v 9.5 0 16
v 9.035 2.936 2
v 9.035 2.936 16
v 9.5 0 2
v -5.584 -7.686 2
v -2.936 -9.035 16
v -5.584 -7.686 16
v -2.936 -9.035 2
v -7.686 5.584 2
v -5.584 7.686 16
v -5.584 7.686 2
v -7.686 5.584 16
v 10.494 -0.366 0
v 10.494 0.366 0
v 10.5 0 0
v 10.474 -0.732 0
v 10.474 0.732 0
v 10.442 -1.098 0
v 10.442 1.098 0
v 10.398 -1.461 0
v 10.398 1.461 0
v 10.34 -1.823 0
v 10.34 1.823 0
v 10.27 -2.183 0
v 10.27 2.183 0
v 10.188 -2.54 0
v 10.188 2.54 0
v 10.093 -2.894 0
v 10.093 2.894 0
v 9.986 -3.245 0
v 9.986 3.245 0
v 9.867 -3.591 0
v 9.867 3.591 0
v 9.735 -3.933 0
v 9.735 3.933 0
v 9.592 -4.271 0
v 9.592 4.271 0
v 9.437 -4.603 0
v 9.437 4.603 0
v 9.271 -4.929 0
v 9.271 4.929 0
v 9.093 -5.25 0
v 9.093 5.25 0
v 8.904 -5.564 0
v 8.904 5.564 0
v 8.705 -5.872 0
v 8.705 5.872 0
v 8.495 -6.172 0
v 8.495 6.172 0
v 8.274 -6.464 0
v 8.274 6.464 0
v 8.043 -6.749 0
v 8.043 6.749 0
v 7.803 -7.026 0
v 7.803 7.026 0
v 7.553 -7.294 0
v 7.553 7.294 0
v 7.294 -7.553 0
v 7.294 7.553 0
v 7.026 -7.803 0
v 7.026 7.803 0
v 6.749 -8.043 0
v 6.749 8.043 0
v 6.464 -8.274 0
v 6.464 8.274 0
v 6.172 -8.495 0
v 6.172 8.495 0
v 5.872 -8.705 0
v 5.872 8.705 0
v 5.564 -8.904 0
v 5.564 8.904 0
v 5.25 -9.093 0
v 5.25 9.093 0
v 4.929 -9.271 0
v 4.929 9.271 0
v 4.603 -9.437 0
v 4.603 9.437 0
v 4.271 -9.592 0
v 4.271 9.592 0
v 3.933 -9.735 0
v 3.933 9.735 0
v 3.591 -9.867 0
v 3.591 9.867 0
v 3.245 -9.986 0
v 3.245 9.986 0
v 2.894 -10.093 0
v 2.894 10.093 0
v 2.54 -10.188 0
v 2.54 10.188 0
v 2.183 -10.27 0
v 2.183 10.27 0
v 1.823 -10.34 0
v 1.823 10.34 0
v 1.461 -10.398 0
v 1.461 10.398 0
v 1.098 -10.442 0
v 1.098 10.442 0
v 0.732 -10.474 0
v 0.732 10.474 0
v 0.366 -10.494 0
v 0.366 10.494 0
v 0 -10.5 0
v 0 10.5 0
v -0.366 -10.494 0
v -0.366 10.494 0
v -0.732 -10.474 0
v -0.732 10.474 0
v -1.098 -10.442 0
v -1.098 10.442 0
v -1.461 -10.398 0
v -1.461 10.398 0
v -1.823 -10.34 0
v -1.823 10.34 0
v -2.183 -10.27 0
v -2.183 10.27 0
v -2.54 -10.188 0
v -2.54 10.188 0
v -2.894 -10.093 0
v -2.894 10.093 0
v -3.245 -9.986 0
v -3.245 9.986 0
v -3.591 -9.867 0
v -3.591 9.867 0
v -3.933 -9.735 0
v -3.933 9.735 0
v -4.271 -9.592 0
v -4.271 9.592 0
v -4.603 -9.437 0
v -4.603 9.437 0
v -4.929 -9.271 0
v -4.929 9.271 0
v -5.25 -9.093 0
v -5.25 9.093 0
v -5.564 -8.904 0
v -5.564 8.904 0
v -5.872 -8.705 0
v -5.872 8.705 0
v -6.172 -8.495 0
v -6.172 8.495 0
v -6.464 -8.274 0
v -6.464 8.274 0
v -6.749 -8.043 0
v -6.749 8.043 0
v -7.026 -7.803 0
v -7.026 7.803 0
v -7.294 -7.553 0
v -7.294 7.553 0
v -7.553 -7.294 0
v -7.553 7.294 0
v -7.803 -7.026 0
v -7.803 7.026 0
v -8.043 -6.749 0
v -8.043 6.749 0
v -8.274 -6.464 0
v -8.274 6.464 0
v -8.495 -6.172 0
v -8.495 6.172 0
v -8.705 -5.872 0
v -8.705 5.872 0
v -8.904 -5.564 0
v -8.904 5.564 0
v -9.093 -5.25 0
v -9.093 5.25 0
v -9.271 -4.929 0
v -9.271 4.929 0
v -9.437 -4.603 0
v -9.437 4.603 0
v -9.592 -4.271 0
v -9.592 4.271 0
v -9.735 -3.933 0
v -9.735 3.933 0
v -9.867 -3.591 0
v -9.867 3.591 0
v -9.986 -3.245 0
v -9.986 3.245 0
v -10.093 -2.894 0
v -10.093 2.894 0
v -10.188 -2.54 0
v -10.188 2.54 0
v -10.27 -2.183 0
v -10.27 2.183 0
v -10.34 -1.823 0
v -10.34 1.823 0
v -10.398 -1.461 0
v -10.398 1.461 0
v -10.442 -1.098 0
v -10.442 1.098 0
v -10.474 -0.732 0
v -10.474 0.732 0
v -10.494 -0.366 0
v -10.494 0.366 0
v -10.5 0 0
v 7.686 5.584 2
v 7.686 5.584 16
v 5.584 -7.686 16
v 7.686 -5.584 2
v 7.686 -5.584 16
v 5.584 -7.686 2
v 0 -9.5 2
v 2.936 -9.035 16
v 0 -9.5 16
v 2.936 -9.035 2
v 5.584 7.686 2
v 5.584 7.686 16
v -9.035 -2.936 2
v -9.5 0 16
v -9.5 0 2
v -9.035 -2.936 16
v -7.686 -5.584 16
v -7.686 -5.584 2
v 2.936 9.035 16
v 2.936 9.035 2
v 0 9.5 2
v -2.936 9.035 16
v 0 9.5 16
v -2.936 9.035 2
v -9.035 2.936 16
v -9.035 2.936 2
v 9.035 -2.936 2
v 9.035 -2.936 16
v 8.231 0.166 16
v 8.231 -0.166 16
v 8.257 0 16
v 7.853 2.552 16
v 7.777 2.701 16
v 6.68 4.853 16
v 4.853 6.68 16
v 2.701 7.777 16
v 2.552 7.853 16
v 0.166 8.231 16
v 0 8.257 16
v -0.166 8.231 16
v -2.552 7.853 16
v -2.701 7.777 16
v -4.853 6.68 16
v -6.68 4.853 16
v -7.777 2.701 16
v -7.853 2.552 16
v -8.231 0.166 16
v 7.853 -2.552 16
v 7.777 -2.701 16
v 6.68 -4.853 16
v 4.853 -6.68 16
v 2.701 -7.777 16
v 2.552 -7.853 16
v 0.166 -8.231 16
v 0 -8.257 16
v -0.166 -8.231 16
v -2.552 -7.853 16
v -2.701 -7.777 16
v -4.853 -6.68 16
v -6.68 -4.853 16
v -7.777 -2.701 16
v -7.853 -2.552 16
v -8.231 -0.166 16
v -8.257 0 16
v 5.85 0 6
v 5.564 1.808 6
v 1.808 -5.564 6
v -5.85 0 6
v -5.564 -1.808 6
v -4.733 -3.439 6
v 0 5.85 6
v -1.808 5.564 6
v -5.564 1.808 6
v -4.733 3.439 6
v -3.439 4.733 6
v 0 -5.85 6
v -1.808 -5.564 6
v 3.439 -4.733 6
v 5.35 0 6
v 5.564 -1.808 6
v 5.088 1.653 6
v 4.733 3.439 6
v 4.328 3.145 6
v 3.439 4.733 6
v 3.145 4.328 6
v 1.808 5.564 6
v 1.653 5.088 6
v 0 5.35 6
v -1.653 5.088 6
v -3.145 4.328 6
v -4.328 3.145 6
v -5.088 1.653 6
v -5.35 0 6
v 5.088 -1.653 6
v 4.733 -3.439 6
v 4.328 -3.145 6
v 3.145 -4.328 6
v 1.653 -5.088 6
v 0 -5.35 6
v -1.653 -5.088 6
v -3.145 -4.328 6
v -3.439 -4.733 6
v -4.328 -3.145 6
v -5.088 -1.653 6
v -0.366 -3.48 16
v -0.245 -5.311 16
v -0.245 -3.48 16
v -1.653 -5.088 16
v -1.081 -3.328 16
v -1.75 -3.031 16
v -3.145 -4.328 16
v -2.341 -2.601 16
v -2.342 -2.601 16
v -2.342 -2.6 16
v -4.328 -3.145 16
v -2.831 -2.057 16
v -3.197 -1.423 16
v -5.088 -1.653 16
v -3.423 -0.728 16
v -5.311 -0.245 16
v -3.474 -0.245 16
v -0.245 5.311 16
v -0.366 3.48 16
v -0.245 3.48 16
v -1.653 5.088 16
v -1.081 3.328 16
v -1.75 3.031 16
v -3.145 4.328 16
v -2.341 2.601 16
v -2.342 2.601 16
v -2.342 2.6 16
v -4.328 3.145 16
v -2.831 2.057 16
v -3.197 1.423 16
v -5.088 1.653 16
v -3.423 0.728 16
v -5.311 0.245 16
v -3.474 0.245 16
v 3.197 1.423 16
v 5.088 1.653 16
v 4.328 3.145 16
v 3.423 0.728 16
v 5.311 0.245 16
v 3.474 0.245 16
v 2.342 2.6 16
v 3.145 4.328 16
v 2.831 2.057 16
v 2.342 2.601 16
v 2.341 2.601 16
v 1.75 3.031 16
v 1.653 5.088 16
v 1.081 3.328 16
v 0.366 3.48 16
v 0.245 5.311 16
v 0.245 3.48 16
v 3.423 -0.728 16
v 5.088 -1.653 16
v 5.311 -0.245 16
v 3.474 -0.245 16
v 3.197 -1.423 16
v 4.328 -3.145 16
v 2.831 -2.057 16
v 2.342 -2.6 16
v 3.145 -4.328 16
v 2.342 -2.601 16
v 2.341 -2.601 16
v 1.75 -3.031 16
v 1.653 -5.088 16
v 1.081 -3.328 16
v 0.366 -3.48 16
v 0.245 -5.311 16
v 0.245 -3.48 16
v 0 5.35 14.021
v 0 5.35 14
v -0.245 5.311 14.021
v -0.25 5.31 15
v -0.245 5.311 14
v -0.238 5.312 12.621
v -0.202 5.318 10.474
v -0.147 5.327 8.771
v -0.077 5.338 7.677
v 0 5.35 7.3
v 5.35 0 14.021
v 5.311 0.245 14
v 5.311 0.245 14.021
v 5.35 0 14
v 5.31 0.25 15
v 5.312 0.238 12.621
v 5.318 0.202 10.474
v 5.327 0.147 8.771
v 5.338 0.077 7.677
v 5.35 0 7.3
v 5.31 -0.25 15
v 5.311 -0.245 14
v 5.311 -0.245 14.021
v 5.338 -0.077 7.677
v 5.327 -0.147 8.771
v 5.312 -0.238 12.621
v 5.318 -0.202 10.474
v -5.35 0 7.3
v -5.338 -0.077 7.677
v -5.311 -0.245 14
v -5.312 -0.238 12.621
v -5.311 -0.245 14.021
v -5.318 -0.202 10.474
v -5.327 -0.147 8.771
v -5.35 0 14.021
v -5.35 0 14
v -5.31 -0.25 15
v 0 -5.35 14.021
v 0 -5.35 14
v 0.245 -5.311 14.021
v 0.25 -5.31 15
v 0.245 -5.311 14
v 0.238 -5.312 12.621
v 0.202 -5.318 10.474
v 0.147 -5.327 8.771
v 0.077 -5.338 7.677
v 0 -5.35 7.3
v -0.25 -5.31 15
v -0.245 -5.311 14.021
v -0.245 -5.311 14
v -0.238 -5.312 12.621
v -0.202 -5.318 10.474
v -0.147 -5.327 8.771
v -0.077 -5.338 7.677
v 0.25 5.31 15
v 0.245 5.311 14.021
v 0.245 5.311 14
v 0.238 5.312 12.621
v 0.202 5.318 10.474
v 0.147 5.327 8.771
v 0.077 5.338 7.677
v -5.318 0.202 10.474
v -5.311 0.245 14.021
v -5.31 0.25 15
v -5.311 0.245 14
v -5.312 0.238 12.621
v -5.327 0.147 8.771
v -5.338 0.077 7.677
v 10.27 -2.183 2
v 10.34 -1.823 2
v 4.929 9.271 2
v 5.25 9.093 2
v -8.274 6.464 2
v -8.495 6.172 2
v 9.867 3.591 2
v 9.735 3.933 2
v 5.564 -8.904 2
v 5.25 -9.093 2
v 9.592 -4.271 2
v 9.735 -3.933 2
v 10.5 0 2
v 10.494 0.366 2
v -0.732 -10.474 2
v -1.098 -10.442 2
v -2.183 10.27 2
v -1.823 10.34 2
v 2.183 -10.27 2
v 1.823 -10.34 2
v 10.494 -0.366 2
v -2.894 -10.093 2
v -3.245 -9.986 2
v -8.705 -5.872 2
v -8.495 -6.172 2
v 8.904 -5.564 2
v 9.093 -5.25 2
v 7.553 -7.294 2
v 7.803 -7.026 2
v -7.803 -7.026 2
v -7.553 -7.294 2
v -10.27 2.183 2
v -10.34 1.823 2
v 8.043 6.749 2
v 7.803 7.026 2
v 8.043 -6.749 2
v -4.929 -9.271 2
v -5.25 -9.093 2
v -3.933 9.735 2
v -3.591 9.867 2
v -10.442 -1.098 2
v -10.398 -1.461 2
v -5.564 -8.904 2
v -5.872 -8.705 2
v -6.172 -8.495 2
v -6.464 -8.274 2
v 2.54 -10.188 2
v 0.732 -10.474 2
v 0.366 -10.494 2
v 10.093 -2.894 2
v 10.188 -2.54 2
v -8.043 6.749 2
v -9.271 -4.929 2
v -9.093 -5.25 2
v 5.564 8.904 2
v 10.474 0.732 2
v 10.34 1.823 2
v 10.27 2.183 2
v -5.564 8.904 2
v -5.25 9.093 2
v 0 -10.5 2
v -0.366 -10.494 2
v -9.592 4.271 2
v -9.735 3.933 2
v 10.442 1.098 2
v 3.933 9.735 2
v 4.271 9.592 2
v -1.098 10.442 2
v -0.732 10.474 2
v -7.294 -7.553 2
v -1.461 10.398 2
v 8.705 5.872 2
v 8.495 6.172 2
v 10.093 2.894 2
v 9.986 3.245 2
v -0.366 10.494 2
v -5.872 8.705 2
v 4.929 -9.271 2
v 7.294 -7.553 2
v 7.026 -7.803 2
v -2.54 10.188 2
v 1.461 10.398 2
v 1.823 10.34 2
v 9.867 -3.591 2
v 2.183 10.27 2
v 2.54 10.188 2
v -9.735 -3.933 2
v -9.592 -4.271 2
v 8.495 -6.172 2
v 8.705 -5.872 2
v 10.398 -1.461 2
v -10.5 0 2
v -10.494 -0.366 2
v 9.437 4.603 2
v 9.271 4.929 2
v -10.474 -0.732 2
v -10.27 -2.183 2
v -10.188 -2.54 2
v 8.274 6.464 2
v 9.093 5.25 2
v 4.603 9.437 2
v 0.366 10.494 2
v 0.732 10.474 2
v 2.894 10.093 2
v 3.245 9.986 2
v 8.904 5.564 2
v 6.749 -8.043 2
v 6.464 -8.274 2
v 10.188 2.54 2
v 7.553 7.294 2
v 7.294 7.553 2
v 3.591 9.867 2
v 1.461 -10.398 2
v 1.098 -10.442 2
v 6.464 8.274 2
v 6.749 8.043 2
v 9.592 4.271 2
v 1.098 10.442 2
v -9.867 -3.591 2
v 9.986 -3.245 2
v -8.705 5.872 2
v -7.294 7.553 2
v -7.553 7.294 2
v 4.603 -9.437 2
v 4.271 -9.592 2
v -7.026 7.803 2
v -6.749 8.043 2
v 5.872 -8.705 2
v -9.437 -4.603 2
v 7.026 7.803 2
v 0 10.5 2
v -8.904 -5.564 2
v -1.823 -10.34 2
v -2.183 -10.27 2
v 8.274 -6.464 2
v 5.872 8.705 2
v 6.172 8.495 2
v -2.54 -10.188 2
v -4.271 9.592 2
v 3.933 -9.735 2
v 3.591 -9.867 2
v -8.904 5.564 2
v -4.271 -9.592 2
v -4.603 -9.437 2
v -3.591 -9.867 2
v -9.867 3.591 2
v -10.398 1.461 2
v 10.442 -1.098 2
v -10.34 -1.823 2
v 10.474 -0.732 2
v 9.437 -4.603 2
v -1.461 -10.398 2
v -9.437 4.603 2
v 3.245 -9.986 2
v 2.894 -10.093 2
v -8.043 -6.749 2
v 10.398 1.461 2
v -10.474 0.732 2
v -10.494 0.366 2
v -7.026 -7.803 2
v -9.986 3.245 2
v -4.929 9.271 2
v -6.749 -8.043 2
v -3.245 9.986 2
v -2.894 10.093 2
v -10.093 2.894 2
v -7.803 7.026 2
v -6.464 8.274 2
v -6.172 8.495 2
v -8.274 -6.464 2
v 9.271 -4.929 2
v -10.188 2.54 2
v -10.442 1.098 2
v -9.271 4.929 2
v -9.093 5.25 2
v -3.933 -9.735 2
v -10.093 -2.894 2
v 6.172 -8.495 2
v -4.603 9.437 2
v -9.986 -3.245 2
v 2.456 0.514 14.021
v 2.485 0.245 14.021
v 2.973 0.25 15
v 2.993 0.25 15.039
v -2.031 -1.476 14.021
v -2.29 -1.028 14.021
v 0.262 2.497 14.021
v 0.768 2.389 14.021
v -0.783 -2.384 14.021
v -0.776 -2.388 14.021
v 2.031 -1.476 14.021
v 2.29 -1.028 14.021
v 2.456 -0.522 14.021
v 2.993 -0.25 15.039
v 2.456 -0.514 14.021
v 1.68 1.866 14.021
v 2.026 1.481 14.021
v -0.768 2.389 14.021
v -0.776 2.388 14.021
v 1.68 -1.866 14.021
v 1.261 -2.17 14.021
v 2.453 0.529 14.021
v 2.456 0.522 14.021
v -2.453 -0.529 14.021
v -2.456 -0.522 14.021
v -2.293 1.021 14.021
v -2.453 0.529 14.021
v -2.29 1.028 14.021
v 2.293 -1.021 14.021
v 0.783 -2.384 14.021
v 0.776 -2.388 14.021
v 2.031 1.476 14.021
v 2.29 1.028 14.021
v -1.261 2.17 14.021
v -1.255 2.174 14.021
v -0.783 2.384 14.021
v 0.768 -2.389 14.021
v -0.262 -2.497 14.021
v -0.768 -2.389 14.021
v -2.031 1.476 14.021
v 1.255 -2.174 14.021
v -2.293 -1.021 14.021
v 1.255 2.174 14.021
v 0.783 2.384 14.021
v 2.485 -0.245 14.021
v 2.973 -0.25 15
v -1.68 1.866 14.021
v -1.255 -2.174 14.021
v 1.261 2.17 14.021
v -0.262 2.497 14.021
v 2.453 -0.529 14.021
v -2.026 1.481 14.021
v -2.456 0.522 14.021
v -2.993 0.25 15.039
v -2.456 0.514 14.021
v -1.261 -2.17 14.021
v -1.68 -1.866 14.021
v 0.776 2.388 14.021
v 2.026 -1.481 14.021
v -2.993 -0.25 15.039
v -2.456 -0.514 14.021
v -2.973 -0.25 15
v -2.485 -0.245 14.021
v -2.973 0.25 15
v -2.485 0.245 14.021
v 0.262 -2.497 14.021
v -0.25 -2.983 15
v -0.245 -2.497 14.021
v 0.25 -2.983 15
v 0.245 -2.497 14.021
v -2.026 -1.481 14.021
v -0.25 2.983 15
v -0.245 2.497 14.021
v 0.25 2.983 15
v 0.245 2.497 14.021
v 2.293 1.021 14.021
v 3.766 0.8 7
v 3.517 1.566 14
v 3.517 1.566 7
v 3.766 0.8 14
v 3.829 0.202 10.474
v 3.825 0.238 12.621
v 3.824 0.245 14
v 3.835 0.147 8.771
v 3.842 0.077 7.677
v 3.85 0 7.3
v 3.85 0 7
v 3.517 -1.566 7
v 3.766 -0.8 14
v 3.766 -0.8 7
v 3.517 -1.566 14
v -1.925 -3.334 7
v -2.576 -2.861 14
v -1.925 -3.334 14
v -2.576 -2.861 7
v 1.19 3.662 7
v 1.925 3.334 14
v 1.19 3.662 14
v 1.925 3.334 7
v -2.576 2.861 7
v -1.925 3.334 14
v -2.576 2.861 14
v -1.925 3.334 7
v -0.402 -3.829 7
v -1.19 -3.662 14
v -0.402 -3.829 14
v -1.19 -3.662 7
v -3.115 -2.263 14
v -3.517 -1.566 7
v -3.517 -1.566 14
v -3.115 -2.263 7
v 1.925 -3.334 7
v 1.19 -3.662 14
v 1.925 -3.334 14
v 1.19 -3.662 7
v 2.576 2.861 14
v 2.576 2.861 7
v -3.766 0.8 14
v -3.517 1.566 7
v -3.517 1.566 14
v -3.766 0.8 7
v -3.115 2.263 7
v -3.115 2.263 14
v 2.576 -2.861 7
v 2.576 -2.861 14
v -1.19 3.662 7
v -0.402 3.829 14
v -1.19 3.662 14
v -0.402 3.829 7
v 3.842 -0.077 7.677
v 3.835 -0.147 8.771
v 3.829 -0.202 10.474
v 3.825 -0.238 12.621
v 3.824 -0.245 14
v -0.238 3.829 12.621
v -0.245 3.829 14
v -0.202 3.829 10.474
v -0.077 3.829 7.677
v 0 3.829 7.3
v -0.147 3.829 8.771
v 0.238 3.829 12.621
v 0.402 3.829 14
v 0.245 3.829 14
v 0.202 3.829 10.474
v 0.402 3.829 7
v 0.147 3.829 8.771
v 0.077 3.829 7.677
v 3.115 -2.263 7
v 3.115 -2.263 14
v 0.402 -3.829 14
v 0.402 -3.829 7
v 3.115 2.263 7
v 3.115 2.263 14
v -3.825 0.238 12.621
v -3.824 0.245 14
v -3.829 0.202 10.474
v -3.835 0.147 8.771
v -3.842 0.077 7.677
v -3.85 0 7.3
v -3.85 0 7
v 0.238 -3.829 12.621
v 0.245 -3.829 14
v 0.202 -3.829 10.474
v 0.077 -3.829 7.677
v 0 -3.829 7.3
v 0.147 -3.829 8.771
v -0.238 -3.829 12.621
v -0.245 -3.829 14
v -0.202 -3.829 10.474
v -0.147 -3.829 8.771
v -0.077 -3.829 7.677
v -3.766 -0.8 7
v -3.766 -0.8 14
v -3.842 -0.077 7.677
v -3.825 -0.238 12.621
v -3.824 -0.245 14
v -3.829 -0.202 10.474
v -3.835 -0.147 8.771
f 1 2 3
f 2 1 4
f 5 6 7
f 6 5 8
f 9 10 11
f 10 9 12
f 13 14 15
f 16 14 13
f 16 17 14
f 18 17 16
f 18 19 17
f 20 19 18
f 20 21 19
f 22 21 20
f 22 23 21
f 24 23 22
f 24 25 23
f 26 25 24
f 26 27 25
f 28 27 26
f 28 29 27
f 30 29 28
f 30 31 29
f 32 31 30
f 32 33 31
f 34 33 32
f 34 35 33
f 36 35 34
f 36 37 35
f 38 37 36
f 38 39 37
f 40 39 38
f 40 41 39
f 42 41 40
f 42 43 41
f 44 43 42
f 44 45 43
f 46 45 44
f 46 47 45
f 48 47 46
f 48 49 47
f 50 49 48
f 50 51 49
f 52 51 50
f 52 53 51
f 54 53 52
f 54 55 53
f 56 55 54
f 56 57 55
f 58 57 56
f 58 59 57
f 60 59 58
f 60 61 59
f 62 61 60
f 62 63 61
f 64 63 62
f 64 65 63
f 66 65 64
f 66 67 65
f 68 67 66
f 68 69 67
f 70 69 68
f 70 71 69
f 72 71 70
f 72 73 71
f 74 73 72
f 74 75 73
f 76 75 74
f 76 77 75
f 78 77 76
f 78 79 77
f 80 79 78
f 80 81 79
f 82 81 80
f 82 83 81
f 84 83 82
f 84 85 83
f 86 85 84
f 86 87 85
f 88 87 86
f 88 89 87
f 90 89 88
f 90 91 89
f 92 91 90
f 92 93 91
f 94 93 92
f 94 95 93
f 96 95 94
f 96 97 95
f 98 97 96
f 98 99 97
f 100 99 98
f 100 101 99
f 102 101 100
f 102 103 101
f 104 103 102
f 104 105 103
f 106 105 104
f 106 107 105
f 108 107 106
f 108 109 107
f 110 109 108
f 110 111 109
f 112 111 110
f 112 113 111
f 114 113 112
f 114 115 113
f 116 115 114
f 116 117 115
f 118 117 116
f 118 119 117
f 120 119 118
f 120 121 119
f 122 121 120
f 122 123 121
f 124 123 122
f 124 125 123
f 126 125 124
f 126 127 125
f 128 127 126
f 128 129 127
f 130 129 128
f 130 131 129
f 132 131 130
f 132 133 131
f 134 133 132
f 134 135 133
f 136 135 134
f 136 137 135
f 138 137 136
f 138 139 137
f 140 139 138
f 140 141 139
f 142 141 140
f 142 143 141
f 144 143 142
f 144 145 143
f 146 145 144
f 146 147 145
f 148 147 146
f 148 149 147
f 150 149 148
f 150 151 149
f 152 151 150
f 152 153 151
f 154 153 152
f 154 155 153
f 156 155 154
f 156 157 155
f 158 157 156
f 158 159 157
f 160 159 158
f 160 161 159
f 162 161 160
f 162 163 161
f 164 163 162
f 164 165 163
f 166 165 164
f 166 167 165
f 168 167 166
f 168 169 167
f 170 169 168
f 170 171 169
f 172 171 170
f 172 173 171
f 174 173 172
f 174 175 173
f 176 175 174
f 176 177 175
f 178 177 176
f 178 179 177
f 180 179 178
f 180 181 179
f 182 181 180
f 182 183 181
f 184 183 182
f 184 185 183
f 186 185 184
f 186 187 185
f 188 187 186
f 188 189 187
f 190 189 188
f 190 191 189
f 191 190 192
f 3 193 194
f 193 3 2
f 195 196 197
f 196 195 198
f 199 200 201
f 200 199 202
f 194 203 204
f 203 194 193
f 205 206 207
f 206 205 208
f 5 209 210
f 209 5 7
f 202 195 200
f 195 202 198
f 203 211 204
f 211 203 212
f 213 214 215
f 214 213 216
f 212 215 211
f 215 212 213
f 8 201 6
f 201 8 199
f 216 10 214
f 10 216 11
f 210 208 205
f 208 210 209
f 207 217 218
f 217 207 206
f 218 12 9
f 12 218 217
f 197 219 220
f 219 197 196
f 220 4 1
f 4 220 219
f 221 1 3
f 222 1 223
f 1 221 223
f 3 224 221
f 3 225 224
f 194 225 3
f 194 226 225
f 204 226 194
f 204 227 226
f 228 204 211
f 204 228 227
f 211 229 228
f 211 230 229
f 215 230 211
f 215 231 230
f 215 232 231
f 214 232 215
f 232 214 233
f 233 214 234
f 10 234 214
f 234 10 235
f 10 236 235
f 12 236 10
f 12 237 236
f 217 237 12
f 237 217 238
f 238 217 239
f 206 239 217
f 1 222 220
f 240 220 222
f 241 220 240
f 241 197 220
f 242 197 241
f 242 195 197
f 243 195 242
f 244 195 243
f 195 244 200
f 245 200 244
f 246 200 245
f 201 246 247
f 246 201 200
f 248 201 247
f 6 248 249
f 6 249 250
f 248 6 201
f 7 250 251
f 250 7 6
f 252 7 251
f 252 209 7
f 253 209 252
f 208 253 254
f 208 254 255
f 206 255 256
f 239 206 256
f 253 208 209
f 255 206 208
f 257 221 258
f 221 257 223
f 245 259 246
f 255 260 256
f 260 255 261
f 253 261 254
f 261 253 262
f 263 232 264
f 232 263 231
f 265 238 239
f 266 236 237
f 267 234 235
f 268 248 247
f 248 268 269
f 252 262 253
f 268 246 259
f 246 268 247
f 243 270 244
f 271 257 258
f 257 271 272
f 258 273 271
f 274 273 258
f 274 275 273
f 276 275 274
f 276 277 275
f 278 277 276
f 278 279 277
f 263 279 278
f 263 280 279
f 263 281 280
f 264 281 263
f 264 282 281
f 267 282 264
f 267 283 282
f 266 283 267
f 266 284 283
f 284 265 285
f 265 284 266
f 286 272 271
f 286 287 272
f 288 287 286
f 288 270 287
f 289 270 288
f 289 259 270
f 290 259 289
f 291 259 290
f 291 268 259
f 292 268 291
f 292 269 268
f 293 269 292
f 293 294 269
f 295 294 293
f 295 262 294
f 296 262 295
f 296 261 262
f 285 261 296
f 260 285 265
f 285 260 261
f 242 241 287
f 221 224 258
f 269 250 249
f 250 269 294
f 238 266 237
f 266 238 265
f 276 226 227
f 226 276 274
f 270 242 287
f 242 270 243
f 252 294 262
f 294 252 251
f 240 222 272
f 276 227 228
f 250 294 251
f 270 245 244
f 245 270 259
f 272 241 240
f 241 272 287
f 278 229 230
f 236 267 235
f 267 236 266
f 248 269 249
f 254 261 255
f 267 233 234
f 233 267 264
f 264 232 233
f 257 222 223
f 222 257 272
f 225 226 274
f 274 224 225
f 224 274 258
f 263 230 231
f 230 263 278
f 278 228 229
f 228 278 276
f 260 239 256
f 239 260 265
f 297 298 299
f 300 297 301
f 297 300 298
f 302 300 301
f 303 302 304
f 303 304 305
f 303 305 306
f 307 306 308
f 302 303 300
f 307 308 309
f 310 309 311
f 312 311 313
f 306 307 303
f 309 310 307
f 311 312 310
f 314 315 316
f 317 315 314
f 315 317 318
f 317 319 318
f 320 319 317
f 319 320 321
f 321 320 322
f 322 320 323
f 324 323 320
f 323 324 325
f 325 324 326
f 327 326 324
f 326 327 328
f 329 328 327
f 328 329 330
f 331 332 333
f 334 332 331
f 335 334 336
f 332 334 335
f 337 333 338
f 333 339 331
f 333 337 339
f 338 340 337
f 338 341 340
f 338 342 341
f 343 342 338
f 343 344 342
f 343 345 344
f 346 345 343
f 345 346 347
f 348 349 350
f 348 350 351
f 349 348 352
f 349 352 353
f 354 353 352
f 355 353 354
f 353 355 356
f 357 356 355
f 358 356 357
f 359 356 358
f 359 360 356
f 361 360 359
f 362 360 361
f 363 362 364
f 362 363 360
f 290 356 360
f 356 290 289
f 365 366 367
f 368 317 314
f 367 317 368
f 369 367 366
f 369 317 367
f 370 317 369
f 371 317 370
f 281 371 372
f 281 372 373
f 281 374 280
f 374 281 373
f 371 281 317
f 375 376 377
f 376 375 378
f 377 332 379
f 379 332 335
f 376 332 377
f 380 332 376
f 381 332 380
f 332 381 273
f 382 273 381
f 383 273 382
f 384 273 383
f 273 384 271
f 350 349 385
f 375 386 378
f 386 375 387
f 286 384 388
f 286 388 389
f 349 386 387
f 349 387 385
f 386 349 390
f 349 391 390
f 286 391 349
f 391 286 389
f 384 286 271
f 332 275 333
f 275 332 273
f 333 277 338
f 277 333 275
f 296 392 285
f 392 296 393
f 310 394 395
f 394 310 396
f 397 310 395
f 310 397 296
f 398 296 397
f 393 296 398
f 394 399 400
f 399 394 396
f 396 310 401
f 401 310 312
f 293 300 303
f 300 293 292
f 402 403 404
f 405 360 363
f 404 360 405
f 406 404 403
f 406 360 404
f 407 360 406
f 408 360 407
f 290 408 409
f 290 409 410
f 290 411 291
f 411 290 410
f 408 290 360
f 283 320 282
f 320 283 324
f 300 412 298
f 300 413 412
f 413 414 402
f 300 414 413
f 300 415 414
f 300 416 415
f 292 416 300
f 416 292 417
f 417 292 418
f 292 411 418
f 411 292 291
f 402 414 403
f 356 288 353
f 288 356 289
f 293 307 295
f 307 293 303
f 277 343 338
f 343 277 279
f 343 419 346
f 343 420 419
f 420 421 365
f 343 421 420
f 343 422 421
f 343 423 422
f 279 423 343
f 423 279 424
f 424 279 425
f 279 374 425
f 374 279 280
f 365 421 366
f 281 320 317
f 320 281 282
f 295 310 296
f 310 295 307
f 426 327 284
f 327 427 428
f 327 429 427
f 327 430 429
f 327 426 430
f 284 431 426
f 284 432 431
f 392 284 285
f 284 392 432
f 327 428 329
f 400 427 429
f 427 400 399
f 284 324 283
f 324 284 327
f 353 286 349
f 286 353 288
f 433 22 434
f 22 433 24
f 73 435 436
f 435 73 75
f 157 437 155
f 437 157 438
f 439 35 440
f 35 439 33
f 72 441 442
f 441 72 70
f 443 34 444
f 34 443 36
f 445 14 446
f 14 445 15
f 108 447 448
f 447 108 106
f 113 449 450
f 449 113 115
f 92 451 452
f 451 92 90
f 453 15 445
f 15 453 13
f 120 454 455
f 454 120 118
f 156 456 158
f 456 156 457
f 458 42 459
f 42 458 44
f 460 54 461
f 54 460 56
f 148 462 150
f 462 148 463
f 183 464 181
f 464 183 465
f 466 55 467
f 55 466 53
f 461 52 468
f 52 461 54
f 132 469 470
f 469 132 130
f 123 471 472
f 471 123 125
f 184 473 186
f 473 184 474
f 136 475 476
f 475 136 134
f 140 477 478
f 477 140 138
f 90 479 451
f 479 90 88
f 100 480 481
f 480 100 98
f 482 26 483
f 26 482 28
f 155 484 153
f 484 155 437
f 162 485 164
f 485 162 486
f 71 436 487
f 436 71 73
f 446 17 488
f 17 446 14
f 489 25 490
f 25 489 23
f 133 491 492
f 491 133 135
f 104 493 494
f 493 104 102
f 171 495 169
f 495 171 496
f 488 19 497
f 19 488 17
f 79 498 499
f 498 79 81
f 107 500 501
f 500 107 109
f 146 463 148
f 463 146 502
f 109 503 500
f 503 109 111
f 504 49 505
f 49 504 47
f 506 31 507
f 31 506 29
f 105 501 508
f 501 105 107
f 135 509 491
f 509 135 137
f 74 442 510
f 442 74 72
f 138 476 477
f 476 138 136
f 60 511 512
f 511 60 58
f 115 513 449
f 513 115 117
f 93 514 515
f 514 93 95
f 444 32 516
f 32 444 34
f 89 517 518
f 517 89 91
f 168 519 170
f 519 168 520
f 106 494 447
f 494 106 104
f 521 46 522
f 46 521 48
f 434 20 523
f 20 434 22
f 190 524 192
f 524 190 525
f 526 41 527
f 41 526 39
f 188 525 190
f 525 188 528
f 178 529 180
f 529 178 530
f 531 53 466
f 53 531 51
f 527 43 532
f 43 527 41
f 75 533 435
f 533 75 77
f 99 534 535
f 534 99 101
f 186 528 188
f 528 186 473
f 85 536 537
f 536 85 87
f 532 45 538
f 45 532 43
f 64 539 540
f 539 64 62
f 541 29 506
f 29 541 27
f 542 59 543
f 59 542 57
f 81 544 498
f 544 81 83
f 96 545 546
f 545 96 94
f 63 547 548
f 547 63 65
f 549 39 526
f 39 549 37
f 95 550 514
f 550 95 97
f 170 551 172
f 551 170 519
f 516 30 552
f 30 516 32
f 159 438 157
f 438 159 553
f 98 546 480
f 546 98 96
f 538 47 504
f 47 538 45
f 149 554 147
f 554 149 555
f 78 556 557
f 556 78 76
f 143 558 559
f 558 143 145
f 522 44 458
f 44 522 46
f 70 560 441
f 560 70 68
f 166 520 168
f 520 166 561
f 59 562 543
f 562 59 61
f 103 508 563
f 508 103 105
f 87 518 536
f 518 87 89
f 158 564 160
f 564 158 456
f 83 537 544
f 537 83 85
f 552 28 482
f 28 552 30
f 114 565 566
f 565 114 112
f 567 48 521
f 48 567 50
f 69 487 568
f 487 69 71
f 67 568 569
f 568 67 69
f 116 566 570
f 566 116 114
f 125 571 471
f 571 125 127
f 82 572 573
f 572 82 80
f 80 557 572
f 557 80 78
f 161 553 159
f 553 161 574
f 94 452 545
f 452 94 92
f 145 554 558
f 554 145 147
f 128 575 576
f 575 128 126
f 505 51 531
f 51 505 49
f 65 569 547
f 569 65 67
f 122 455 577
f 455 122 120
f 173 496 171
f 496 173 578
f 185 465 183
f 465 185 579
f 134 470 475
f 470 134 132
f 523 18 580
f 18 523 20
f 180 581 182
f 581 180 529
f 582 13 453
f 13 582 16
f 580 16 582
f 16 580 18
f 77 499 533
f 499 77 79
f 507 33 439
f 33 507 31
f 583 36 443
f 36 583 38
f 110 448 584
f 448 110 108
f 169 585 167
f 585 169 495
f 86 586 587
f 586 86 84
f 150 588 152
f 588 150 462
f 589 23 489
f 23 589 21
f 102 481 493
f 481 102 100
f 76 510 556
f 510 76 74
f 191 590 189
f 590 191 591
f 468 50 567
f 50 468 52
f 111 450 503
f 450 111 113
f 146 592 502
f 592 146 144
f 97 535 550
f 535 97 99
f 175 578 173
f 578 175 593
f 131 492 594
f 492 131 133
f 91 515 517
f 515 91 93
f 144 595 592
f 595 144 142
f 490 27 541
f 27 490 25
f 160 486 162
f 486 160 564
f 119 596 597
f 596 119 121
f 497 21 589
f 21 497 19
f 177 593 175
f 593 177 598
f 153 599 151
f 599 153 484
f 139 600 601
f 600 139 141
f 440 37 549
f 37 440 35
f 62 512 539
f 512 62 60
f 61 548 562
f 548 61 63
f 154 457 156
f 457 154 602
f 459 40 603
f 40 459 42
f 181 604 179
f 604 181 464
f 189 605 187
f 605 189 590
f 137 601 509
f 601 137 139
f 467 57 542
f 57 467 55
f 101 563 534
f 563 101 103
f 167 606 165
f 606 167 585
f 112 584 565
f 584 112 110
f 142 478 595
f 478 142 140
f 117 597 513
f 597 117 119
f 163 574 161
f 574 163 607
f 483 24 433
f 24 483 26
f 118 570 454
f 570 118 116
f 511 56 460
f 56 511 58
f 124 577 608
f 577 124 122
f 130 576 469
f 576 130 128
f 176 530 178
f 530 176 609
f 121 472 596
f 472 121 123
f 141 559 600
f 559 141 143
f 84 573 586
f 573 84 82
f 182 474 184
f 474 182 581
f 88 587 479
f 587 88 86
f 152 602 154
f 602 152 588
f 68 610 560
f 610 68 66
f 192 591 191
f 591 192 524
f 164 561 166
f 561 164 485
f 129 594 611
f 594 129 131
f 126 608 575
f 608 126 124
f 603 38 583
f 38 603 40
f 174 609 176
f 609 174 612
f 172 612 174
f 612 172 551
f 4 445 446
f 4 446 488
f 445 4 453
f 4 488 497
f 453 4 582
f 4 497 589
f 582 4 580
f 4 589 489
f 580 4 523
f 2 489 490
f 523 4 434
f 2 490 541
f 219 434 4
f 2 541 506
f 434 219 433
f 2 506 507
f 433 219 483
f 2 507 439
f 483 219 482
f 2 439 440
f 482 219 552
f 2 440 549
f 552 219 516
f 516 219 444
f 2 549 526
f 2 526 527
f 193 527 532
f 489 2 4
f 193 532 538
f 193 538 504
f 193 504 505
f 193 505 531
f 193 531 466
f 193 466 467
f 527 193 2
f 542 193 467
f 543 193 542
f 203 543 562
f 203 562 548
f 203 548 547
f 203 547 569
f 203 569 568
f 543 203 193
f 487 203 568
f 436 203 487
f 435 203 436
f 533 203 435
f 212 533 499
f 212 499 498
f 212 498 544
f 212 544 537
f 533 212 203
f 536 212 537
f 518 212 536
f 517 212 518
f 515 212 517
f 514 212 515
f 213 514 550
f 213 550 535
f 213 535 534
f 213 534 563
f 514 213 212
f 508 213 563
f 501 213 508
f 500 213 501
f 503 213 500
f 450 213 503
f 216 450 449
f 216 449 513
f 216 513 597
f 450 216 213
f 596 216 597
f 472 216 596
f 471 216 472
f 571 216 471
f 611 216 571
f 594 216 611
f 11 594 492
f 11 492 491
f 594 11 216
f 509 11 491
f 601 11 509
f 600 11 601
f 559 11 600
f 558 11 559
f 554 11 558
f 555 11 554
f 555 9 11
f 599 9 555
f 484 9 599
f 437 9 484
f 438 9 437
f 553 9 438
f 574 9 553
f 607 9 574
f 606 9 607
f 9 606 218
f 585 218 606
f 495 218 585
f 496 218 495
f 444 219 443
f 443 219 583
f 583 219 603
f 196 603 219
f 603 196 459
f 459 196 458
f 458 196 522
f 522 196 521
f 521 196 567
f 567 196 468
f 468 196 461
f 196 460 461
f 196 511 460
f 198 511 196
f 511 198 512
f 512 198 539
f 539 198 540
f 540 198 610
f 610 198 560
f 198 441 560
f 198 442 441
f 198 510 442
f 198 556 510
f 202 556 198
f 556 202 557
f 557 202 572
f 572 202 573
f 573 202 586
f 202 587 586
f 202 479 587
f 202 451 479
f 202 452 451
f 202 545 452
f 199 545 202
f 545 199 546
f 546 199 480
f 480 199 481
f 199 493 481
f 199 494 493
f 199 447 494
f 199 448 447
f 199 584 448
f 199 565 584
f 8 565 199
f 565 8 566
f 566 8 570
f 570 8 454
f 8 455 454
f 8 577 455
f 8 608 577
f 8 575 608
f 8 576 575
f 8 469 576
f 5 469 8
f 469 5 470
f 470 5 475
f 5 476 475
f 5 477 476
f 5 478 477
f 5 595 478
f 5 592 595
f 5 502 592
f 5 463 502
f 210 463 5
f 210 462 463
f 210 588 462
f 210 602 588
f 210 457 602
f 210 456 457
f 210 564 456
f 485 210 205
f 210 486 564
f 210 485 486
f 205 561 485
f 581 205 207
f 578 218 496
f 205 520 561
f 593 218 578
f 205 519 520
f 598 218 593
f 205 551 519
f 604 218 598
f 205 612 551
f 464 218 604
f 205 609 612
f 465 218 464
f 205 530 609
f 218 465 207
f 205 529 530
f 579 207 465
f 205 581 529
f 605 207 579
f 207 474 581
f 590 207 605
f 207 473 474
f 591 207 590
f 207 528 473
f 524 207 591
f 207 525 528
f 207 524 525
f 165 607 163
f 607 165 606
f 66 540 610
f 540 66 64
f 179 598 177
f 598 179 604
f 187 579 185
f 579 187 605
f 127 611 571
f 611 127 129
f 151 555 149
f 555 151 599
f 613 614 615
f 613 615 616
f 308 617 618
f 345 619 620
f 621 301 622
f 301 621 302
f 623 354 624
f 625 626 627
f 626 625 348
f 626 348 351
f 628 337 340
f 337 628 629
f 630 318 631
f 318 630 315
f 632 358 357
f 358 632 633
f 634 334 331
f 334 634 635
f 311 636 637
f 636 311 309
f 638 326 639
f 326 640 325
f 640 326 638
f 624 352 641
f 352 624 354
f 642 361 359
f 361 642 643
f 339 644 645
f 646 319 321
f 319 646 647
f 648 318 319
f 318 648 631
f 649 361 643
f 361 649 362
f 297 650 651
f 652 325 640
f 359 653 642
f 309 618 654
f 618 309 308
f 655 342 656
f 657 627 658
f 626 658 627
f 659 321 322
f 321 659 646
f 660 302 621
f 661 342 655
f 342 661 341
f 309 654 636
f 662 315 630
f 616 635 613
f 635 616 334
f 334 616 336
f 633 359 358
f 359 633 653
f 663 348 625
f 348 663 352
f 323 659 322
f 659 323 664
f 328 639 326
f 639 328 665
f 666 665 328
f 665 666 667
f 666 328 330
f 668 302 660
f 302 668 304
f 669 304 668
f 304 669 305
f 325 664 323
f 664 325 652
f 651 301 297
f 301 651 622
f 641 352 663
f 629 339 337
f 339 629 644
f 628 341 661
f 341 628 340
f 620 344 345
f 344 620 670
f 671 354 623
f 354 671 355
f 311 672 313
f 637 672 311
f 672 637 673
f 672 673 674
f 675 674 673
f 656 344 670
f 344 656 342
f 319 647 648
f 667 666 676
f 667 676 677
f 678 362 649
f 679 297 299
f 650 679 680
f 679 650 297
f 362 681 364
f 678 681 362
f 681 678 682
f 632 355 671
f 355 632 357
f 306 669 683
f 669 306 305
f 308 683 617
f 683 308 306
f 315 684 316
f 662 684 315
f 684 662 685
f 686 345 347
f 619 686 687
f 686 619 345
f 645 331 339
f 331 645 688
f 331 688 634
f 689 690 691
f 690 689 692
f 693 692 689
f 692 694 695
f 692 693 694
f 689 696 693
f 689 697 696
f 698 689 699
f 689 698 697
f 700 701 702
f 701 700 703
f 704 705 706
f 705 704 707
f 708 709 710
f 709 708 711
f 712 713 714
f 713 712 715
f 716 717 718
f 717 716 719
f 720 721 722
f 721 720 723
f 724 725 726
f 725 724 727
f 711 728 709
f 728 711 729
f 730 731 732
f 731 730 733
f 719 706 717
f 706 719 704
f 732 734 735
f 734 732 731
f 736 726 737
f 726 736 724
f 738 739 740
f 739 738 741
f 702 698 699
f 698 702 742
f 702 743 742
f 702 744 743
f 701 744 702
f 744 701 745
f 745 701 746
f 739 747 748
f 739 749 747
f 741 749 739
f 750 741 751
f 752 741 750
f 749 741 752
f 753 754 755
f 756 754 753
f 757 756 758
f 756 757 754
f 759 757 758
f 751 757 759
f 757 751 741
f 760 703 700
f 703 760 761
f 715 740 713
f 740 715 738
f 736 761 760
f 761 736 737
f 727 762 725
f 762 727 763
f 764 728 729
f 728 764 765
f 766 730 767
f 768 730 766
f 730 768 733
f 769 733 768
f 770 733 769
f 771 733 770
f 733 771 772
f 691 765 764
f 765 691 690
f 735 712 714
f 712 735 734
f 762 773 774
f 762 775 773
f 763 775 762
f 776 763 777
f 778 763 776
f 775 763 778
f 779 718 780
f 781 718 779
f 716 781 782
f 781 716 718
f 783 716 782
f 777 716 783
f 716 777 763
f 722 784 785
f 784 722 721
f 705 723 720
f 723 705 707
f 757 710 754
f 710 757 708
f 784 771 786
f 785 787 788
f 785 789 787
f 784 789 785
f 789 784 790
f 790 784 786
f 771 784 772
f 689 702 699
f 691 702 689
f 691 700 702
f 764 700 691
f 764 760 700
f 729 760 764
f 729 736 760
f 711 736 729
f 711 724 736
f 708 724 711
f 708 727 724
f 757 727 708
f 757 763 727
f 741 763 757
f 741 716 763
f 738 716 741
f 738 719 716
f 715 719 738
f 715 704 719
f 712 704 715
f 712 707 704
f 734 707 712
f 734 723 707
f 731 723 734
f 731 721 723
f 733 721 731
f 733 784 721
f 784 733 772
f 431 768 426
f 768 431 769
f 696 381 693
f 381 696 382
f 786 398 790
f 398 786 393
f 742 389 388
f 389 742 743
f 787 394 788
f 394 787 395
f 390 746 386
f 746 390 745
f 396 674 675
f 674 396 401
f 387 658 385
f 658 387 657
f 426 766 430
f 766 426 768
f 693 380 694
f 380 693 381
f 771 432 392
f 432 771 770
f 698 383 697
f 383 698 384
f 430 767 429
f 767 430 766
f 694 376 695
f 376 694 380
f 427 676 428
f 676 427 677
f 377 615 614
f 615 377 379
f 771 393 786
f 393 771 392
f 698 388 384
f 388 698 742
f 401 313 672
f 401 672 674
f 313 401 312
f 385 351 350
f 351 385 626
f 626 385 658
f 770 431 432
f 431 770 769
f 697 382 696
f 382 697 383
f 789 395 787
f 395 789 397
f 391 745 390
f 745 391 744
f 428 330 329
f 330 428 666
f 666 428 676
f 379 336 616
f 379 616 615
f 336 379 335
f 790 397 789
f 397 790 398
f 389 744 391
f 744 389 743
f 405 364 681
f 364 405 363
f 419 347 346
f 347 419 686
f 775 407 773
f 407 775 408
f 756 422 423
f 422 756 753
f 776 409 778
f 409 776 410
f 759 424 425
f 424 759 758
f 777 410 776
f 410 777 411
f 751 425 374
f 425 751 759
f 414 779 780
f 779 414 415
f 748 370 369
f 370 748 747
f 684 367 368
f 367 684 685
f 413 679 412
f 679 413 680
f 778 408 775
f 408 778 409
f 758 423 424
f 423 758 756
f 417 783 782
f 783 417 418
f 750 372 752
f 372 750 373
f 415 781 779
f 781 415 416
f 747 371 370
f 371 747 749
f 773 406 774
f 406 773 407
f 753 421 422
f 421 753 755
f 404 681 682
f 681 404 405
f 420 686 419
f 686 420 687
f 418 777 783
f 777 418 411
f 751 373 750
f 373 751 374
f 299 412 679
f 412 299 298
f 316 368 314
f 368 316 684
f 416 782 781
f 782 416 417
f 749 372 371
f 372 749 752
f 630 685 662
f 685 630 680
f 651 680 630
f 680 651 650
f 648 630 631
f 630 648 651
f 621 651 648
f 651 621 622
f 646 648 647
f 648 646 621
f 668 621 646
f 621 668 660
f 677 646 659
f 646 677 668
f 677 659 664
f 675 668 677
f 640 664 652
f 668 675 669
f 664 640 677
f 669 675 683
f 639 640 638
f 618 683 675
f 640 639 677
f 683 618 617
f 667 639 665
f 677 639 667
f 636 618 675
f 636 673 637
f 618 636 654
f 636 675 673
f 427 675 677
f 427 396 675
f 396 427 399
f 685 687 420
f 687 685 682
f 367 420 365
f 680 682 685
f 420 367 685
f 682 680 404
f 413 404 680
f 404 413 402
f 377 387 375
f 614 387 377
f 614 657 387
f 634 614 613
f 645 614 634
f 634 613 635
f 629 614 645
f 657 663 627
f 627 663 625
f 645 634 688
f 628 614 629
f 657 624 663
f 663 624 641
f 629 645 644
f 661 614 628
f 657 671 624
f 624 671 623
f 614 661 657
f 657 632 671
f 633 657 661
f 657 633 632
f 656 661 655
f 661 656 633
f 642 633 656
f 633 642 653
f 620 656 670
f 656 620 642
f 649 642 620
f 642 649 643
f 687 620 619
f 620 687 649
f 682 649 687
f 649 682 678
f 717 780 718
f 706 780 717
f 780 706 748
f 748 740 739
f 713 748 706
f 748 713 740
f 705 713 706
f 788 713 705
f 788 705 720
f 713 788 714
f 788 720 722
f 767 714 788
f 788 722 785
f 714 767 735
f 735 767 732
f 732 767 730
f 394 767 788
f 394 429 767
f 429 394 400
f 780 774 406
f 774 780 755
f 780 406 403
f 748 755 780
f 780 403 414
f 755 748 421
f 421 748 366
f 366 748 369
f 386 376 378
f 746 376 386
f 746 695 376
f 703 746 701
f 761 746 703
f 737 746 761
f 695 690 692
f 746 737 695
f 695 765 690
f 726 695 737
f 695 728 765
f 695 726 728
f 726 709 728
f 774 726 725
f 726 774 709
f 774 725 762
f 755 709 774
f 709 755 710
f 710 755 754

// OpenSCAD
/*
A replacement knob for a dog box which uses a 3/4" conduit sleeve to avoid dogs chewing it to bits.
Cut away the sacrificial bridge after printing.
Author: Nathaniel J Stenzel
Designed on 2/19/2020
*/
$fn=20; //lines in circle
nut_diameter = 7.7; //7.75mm last. almost tight enough
nut_length = 7;
ring_length = 16;
//conduit is 3/4 inch aka 19.05
conduit_diameter=19;
cut_away=false;

difference(){
    union(){
        cylinder(d=nut_diameter+3,h=ring_length);
        cylinder(d=conduit_diameter+2,h=2,$fn=180);
        difference(){
            cylinder(d=conduit_diameter,h=16);
            translate([0,0,ring_length-nut_length-3])cylinder(d1=nut_diameter+4,d2=conduit_diameter-2,h=ring_length-nut_length+2.01);
        }
    }
    translate([0,0,ring_length-2])cylinder(d=5,h=2.001,$fn=30);//a hole for the wire that the nut is on
    translate([0,0,ring_length-2])cylinder(d1=5,d2=7,h=2.001,$fn=30);//help this slide over the nut
    //a slant might let it slip loose
    //translate([0,0,ring_length-2])cylinder(d1=nut_diameter,d2=0,h=1.5); //slanted top above the nut
    translate([0,0,ring_length-nut_length-2])cylinder(d=nut_diameter,h=nut_length+0.001,$fn=30); //hole for the nut
    translate([-nut_length*0.8,0,ring_length-1])rotate([0,90,0])resize([nut_diameter*2,0.5,nut_length*1.6])cylinder(d=1,h=1); //slit
    translate([0,nut_length*0.8,ring_length-1])rotate([90,0,0])resize([0.5,nut_diameter*2,nut_length*1.6])cylinder(d=1,h=1); //slit
    if(cut_away)translate([0,0,-0.01])cube([conduit_diameter+5,conduit_diameter+1,ring_length+1]);
}
translate([0,0,ring_length-2])cylinder(d=nut_diameter+3,h=0.021); //sacrificial bridge
